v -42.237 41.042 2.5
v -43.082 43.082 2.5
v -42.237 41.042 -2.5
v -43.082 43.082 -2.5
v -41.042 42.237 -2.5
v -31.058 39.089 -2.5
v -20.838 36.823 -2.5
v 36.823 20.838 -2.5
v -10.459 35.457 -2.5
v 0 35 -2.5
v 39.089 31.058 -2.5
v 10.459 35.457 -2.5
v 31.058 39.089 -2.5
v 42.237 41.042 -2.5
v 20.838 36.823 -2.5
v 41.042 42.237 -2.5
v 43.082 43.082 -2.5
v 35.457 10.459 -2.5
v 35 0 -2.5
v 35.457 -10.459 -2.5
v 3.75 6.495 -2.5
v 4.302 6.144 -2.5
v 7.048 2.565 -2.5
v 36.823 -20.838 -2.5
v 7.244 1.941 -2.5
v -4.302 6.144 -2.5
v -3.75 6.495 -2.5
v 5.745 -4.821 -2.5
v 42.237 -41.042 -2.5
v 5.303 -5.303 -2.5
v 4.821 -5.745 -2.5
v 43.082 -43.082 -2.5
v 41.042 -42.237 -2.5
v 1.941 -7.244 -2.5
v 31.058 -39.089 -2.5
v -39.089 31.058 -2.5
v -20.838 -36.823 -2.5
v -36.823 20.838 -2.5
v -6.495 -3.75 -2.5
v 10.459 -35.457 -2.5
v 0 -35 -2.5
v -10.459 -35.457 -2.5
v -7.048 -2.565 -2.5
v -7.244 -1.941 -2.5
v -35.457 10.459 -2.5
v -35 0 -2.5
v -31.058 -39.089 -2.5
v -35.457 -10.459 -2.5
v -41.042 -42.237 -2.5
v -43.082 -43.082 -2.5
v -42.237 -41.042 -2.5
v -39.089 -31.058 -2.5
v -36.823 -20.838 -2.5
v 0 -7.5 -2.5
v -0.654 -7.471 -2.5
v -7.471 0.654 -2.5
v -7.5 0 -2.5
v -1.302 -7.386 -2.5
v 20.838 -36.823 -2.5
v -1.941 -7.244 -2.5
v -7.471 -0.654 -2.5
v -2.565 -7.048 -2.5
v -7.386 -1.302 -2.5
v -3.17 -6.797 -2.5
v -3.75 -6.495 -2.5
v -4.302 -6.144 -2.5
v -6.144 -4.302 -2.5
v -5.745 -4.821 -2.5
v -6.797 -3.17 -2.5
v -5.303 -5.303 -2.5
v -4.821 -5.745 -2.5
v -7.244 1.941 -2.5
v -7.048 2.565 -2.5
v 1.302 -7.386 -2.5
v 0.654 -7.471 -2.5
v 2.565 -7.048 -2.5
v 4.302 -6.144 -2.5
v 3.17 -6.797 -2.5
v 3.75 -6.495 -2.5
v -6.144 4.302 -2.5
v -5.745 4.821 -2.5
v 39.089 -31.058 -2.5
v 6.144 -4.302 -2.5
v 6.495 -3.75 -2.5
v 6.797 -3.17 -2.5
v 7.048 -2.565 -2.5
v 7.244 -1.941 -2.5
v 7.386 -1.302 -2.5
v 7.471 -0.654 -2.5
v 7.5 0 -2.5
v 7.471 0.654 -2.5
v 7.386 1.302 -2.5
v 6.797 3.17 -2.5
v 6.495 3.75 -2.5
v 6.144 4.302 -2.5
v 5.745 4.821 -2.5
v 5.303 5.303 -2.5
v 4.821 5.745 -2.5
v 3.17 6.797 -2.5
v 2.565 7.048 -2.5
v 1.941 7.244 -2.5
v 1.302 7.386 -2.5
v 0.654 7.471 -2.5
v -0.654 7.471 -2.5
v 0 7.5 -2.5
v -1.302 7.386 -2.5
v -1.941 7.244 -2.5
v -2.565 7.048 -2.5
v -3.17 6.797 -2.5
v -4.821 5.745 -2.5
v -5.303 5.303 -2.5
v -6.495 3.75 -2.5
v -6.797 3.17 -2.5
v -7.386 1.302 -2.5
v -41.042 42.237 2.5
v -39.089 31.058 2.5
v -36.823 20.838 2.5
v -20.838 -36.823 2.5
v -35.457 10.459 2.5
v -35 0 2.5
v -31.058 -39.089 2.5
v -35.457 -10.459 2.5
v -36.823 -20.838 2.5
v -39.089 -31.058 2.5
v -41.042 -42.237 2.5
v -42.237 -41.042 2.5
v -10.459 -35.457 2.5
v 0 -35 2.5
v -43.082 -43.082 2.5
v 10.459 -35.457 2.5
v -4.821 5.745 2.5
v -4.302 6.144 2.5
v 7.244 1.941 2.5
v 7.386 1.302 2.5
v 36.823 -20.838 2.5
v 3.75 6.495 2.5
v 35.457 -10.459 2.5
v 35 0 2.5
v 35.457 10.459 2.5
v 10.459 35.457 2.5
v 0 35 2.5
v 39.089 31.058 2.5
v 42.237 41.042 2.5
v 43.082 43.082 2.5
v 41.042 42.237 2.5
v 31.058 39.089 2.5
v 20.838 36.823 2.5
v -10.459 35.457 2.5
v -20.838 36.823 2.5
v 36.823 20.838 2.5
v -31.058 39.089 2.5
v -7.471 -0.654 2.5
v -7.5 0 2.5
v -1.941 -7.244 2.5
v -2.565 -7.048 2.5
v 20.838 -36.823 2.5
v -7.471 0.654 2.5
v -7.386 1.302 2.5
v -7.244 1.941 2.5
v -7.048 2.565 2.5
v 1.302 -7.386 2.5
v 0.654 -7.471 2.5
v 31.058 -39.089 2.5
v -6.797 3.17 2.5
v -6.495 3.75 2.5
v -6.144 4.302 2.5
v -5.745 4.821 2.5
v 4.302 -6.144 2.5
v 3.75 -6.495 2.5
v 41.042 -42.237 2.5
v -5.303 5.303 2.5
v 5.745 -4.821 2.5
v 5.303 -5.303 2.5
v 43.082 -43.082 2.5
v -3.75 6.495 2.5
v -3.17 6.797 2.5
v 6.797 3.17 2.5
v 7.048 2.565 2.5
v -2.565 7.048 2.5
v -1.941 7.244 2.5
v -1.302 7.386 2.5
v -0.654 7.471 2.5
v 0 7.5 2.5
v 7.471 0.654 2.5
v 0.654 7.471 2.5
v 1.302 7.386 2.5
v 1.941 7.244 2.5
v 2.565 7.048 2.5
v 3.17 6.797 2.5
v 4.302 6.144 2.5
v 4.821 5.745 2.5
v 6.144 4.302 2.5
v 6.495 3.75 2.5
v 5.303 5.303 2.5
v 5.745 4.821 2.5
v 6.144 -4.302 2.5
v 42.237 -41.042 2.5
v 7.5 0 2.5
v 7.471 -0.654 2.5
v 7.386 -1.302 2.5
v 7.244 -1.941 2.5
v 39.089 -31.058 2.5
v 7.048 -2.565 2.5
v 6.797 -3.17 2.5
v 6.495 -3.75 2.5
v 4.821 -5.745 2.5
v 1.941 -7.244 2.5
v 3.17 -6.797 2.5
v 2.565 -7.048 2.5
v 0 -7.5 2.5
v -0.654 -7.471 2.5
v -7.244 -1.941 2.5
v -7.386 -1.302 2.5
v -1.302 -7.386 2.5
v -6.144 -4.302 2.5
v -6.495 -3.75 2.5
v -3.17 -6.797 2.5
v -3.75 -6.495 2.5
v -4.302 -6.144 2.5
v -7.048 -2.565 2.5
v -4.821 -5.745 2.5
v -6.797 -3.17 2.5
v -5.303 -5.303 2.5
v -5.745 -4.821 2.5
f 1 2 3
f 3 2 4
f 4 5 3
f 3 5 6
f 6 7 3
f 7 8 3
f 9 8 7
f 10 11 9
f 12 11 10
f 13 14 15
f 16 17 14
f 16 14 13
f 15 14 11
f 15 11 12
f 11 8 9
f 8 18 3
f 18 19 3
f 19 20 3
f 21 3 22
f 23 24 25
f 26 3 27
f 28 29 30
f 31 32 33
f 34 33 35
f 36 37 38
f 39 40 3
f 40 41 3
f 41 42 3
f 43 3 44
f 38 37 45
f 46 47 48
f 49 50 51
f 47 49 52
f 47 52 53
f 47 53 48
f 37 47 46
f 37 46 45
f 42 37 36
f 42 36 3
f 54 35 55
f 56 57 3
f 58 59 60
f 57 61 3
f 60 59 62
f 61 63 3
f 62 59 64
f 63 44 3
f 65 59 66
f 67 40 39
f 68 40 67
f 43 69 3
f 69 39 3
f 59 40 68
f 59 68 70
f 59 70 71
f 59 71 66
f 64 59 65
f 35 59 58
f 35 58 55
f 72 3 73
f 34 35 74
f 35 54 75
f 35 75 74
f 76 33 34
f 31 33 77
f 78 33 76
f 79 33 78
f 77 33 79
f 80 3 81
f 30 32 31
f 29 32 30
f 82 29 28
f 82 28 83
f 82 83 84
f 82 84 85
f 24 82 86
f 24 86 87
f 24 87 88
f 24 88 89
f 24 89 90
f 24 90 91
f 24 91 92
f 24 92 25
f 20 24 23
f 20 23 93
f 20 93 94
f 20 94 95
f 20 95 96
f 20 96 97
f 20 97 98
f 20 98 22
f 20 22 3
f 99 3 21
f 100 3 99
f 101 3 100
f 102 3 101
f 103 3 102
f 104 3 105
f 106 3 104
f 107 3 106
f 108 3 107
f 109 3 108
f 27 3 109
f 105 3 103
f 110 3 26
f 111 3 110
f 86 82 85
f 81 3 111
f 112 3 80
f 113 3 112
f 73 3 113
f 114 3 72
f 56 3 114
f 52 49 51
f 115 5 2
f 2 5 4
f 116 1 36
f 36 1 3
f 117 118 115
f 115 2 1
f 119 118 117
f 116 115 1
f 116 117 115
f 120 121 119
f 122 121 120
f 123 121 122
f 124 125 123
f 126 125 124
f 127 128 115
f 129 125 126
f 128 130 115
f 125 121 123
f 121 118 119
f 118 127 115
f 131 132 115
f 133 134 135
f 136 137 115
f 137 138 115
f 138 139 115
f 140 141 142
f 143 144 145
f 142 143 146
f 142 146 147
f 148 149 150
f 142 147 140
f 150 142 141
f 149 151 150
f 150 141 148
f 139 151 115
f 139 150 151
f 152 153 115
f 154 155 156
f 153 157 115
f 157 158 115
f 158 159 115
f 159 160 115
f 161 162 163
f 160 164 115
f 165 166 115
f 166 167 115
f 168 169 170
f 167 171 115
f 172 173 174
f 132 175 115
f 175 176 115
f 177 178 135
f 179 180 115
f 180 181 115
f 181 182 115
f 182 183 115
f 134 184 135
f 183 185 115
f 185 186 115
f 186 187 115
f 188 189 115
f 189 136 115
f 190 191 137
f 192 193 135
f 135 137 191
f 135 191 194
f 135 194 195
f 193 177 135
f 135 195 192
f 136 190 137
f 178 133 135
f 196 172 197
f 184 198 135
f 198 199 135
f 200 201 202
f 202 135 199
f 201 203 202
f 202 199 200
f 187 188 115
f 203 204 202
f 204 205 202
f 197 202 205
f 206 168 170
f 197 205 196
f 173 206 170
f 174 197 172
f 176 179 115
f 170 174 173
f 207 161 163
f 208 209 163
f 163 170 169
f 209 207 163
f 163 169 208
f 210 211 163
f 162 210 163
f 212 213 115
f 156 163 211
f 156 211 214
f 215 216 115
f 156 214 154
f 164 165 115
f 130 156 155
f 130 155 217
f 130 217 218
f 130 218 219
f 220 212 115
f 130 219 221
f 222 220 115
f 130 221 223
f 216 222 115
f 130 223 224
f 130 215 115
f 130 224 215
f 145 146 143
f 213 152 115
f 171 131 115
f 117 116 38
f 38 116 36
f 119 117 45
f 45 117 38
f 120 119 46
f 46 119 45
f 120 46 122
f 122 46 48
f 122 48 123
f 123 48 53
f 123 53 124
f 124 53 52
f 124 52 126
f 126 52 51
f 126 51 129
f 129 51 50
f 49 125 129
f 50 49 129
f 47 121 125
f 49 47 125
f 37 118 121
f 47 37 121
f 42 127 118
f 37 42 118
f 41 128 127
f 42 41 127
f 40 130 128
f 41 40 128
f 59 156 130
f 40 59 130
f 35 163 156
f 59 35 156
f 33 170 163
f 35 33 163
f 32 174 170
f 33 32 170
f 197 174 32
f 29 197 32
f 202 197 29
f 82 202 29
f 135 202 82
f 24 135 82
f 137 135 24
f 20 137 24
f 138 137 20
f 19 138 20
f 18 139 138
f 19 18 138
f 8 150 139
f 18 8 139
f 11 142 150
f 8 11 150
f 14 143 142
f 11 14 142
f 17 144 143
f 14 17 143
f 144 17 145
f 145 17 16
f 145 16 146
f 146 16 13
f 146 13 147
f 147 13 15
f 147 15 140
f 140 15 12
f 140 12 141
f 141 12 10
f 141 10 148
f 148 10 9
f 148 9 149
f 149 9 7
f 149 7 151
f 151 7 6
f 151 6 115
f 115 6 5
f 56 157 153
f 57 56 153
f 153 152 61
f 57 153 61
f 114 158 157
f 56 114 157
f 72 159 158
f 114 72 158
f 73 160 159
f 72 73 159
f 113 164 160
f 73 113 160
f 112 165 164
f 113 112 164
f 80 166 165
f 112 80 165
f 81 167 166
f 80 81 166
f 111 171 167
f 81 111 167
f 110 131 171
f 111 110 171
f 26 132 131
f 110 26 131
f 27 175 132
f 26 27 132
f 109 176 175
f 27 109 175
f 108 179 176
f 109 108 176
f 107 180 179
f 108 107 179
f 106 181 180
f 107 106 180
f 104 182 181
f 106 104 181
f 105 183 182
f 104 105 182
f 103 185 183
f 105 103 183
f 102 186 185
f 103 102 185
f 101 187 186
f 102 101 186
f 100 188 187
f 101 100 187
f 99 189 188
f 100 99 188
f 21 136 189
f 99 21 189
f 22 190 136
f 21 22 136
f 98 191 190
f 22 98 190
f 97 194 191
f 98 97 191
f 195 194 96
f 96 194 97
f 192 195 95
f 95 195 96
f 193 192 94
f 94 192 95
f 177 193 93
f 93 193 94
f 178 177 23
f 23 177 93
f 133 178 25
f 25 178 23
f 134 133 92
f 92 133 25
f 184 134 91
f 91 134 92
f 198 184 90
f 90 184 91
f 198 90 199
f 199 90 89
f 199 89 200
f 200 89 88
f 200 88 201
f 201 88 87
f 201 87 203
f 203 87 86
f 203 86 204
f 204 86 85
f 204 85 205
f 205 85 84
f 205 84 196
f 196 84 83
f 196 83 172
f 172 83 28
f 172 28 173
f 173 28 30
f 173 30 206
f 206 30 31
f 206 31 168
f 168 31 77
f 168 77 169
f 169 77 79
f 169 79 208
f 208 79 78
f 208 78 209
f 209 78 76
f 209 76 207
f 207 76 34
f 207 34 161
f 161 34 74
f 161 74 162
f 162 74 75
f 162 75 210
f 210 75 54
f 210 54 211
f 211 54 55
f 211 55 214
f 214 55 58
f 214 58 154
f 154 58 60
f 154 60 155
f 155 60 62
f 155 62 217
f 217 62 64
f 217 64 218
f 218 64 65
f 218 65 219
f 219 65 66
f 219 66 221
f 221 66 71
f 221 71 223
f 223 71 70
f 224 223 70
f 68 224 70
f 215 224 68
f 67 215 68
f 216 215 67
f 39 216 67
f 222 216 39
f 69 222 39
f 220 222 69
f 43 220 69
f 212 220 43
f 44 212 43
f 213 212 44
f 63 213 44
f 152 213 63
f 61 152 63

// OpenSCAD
/*
    Shuriken
    Copyright (C) 2014  Gabriel L. Rael

    This program is free software: you can redistribute it and/or modify
    it under the terms of the GNU General Public License as published by
    the Free Software Foundation, either version 3 of the License, or
    (at your option) any later version.

    This program is distributed in the hope that it will be useful,
    but WITHOUT ANY WARRANTY; without even the implied warranty of
    MERCHANTABILITY or FITNESS FOR A PARTICULAR PURPOSE.  See the
    GNU General Public License for more details.

    You should have received a copy of the GNU General Public License
    along with this program.  If not, see <http://www.gnu.org/licenses/>.
*/

difference(){
	cube([90, 90, 5], true);
	translate([0,0,-5]){
		for (i = [0:90:270]) {
			rotate(i, [0, 0, 1]) {
				translate([-155, 0, 0]){ 
					cylinder(10, r=120, true, $fa=5, $fs=0.1);
				}
			}
		}
		cylinder(10, r=7.5, true, $fa=5, $fs=0.1);
	}
}

				
